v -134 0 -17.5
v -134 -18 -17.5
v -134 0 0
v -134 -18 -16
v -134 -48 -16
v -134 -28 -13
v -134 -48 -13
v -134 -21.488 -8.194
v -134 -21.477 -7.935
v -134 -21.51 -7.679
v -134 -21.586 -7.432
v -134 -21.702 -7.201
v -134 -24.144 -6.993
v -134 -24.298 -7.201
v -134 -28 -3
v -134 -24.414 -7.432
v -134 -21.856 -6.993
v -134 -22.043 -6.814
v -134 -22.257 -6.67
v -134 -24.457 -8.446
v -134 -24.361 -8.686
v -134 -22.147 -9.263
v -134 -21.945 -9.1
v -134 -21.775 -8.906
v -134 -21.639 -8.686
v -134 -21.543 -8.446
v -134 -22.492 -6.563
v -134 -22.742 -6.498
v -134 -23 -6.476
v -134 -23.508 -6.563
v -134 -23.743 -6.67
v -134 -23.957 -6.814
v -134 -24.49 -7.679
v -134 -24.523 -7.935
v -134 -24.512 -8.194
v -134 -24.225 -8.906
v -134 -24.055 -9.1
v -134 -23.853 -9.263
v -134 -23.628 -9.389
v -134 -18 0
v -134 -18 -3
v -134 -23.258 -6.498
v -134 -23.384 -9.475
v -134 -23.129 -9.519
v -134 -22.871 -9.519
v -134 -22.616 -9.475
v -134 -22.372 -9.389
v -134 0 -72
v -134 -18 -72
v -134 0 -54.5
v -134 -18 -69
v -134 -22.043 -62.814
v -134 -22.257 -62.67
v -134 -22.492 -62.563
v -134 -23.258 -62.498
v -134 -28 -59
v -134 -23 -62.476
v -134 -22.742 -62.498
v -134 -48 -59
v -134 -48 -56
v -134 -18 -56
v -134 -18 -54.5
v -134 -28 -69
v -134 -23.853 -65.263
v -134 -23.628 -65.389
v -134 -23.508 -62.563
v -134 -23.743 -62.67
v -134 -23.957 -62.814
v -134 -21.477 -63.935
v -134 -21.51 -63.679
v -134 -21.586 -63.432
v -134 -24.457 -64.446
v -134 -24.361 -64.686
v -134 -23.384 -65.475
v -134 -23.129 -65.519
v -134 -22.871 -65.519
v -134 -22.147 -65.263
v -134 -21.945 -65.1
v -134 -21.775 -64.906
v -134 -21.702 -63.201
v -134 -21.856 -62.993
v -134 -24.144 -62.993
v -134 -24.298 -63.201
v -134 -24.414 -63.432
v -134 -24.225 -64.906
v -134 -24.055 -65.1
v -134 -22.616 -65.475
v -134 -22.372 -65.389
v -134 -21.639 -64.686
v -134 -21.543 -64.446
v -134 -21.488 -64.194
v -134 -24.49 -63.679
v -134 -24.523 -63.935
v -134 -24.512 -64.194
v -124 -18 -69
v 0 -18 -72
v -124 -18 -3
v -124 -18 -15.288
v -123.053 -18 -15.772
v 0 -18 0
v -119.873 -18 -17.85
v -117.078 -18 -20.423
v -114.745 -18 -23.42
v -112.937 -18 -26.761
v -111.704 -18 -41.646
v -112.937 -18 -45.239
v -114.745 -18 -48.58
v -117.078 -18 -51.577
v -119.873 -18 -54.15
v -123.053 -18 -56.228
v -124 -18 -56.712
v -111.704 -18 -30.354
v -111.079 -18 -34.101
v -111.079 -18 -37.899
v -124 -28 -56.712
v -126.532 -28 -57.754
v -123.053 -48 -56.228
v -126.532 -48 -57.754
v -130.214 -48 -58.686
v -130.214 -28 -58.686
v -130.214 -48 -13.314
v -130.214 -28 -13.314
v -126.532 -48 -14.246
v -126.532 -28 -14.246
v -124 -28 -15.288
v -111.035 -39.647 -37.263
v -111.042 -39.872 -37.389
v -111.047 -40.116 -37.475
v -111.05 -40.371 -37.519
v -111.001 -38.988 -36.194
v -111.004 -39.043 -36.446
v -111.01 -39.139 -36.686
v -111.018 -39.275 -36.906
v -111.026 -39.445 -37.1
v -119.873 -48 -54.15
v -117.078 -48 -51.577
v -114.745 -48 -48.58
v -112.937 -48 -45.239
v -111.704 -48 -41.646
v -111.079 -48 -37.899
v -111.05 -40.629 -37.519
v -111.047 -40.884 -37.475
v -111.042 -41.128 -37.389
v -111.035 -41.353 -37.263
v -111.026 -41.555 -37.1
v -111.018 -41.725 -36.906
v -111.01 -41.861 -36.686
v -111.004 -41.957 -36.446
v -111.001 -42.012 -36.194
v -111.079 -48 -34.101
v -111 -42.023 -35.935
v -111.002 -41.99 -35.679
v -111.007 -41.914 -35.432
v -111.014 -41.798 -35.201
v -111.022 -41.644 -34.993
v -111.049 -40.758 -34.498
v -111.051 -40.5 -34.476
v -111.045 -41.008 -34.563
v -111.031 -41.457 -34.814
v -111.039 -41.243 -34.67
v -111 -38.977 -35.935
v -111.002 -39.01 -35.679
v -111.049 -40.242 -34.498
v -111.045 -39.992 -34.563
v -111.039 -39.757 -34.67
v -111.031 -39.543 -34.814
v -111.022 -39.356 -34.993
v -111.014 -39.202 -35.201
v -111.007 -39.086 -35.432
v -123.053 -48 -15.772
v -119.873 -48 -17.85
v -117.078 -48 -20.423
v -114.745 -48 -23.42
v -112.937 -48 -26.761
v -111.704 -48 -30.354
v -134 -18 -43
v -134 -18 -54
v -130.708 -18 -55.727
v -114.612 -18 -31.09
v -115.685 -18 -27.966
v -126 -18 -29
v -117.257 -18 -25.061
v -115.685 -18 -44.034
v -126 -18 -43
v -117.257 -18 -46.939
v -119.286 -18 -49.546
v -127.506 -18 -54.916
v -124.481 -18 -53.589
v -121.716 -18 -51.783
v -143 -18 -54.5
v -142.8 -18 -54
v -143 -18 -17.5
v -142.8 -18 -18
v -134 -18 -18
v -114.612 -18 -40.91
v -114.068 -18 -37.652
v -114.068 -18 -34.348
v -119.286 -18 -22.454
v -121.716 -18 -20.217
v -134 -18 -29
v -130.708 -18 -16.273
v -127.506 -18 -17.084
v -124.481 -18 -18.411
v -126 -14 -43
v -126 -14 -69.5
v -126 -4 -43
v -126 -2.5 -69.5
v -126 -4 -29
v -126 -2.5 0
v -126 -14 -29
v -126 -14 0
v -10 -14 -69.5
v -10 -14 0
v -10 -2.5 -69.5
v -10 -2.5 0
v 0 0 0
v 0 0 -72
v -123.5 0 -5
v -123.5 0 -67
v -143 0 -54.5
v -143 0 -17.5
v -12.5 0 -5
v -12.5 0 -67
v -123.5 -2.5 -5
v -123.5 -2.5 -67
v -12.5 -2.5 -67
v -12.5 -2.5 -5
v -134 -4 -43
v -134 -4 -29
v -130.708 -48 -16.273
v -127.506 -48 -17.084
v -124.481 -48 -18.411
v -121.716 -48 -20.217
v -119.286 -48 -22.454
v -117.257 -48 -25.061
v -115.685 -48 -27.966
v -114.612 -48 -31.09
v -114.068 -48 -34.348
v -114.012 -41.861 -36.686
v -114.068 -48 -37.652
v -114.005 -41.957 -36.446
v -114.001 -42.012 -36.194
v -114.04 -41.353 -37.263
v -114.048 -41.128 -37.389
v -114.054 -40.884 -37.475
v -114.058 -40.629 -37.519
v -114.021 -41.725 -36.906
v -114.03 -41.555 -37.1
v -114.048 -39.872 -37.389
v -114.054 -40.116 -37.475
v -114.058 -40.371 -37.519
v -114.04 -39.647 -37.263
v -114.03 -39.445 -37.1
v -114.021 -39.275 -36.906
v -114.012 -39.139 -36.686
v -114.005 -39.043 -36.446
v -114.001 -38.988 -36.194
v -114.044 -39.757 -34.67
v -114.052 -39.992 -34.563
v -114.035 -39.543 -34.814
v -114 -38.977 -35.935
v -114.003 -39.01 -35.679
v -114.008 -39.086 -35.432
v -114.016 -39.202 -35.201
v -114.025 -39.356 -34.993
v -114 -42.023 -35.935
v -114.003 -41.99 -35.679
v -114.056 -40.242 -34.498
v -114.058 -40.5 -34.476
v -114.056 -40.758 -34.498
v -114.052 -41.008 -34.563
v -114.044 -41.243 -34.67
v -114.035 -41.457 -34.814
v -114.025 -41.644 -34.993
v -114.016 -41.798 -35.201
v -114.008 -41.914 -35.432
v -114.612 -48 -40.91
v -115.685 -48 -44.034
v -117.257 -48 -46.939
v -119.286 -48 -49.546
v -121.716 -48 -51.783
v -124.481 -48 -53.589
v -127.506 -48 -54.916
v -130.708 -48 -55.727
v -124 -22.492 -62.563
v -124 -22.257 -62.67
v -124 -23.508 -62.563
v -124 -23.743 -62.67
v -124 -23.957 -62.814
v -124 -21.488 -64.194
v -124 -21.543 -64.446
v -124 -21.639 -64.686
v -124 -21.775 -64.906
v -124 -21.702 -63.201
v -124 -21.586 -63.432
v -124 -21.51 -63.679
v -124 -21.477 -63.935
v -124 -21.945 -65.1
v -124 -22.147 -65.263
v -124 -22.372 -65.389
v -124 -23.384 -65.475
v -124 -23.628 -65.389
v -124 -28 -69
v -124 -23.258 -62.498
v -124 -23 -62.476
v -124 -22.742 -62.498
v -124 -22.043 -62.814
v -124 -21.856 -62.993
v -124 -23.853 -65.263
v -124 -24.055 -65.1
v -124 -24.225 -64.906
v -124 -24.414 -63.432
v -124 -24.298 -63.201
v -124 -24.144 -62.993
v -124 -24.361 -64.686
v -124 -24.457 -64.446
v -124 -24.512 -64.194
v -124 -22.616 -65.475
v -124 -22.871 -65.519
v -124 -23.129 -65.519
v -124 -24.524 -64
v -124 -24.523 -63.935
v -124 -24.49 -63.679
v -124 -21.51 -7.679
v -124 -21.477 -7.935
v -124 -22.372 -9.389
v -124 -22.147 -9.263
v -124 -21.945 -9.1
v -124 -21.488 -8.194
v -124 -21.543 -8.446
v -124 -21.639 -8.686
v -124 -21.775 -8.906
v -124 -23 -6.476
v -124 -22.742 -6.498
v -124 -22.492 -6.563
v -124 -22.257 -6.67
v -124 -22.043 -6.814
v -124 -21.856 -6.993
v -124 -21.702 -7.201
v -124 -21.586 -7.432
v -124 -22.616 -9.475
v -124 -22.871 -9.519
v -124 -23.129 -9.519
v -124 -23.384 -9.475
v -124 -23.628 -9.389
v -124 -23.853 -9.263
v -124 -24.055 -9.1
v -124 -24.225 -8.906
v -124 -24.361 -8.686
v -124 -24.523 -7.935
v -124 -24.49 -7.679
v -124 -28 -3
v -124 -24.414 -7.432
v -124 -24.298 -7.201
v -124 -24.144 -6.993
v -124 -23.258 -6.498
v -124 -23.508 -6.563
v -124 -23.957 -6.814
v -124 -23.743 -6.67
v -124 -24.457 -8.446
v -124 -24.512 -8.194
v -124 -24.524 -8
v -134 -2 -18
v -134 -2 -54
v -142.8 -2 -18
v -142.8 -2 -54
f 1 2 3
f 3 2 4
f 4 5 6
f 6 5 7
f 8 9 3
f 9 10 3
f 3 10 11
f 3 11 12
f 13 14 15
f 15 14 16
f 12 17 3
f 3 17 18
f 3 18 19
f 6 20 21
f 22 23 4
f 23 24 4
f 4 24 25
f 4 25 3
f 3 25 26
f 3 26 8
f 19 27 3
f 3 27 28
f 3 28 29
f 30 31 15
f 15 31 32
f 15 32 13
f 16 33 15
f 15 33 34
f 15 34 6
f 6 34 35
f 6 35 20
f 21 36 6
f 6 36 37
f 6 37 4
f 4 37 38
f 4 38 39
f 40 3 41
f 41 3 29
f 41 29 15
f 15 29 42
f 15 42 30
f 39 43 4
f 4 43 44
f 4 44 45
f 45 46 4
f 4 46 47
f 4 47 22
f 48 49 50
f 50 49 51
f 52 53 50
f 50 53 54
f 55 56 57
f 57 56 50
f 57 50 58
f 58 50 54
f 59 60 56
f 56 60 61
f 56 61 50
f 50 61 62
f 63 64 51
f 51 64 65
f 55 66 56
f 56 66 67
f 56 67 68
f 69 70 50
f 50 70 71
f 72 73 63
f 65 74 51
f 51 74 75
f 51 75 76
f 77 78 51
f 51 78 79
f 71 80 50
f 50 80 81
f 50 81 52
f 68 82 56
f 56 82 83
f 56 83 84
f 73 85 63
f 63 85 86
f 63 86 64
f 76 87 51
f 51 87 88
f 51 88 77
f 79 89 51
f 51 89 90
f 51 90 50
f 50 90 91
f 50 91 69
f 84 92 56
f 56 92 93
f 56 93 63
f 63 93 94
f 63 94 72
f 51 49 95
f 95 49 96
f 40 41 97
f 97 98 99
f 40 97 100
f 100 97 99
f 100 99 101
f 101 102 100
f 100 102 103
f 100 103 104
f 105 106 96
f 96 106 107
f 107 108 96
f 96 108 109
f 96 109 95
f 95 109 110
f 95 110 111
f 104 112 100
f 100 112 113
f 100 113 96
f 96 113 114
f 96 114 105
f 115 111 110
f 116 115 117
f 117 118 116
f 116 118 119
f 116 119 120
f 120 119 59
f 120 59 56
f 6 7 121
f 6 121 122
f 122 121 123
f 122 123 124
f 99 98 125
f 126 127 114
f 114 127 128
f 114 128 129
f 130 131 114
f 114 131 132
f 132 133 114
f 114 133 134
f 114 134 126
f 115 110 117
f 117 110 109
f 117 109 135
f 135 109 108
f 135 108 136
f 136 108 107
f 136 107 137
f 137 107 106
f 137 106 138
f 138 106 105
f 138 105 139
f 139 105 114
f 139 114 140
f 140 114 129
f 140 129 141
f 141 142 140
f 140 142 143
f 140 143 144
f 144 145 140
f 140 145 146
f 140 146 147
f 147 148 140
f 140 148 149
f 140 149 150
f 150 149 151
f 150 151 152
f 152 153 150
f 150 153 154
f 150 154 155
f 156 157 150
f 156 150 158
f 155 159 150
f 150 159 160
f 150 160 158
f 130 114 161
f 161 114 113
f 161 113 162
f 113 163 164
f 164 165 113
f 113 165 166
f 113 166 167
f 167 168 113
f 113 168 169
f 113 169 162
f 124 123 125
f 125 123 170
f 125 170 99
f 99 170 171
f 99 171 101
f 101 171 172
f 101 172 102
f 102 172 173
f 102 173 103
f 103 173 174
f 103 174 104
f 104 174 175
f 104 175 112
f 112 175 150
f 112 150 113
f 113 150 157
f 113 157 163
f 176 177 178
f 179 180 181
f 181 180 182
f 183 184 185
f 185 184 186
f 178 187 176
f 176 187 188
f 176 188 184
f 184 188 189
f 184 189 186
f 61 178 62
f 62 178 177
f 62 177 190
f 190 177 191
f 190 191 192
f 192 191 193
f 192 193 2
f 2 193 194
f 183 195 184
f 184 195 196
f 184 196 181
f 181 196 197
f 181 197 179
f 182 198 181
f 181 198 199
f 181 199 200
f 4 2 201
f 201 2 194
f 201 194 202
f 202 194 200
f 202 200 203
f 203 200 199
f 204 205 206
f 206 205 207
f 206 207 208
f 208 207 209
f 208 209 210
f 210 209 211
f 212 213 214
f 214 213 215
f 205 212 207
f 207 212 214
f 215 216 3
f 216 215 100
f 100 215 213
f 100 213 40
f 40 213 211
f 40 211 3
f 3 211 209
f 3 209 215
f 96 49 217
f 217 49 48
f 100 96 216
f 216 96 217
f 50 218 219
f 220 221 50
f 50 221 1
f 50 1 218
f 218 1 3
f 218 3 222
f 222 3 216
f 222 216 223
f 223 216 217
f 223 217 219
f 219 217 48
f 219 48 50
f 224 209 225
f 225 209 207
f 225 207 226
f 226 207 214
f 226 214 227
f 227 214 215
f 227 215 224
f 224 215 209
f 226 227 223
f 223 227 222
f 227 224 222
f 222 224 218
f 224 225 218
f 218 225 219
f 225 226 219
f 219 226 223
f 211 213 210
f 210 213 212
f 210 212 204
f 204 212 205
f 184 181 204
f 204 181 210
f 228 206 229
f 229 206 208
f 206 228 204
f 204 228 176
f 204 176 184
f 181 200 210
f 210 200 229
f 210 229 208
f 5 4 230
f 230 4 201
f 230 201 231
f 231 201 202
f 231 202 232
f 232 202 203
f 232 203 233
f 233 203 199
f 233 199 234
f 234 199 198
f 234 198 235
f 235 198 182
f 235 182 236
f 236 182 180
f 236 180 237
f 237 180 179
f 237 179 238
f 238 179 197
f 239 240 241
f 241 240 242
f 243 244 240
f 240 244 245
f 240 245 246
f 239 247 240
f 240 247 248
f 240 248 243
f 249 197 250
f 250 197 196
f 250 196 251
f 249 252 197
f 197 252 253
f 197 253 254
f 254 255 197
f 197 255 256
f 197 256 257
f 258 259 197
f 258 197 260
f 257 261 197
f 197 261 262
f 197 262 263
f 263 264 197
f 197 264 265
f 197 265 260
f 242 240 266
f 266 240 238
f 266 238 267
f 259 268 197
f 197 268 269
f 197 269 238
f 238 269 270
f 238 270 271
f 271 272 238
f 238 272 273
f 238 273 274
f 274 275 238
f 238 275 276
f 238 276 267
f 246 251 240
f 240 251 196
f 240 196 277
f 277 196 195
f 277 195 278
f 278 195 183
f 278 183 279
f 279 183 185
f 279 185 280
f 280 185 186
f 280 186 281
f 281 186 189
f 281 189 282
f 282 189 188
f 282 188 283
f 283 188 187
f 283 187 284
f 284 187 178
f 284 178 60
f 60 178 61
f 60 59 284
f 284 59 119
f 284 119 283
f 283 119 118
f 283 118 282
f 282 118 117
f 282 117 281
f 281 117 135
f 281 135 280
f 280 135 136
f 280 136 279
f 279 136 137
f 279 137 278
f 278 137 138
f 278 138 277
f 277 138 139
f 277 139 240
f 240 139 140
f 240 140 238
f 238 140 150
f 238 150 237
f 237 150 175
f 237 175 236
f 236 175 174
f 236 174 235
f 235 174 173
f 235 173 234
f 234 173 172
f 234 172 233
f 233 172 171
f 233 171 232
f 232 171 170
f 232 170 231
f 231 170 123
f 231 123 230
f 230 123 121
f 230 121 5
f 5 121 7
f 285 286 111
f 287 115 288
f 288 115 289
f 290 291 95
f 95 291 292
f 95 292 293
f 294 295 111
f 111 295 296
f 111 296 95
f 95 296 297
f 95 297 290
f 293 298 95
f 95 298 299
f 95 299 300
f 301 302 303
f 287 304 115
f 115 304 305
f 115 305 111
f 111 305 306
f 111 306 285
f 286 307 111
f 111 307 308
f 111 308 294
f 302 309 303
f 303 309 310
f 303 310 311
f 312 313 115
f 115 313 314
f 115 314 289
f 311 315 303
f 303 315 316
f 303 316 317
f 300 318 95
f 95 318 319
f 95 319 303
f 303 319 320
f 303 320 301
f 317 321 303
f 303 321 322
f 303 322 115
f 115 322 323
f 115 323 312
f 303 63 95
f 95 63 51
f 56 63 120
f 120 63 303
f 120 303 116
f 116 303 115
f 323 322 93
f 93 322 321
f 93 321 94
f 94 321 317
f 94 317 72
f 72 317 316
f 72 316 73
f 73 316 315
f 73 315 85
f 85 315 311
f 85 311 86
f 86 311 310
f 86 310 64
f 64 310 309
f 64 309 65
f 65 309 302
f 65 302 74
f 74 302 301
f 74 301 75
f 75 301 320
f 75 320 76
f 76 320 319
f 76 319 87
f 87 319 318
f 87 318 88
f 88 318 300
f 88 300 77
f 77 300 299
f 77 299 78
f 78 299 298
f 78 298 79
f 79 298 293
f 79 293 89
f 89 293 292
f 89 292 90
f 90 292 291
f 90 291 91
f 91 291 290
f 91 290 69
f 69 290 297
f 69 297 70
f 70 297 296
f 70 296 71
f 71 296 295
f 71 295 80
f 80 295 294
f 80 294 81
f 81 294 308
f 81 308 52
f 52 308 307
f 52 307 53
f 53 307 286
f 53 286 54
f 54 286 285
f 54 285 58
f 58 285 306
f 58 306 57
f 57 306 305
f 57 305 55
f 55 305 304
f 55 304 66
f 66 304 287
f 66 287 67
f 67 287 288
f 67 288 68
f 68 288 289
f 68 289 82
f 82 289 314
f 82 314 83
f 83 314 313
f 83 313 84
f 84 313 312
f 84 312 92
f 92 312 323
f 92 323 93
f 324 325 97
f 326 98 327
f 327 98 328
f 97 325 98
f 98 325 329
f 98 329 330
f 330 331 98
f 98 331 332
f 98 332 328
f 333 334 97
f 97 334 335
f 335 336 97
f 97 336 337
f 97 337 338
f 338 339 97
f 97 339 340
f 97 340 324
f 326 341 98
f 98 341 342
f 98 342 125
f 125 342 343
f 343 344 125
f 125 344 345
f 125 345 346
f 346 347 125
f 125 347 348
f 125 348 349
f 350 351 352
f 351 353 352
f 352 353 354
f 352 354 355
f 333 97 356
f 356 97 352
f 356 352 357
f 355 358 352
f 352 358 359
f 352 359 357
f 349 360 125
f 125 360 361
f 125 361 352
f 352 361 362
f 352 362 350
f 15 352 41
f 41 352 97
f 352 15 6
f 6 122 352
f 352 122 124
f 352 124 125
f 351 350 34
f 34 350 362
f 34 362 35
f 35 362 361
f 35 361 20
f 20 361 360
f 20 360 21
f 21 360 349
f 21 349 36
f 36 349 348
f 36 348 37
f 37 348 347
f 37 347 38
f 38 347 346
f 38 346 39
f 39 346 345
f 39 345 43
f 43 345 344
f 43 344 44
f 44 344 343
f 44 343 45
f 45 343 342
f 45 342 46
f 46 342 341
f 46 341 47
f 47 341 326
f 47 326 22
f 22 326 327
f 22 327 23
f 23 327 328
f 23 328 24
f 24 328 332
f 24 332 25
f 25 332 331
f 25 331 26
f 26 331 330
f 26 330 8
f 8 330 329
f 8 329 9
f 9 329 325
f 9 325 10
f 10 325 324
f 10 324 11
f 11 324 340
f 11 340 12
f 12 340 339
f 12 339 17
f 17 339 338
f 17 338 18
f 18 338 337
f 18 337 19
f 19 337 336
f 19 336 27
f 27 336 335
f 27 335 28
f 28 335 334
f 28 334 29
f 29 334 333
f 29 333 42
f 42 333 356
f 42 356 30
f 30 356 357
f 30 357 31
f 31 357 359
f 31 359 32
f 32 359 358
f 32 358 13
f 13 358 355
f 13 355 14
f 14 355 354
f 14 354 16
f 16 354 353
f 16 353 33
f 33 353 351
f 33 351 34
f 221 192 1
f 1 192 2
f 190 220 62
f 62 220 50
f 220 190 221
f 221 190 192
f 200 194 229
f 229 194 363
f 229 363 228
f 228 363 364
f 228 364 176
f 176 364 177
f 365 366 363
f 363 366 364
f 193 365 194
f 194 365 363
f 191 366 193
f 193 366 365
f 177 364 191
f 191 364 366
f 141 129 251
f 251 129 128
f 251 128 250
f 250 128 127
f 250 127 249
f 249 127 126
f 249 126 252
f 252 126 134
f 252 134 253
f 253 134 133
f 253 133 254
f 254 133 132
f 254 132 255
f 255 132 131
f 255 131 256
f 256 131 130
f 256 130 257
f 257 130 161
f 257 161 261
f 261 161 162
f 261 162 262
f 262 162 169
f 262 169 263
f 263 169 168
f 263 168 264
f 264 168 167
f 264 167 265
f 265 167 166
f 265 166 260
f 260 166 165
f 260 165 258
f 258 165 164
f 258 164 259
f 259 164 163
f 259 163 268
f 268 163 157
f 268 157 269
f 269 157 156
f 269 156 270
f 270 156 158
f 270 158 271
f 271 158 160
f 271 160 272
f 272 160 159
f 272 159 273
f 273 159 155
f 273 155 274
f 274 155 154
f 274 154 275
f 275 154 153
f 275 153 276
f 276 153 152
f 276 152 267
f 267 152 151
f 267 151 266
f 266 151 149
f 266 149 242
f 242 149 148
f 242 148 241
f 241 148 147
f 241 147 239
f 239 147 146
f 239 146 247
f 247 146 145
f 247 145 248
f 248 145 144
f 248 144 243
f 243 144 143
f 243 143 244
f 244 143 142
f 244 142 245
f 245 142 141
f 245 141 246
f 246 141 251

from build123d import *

# Parameters (mm, degrees)
SKETCH5_W                  = 116
SKETCH5_H                  = 67
MAIN_BODY_DEPTH            = 14
SKETCH6_W                  = 116
SKETCH6_H                  = 67
SKETCH6_W_2                = 111
SKETCH6_H_2                = 62
RAIL_DEPTH                 = 2.5
SKETCH8_W                  = 134
SKETCH8_H                  = 4
COVER_DEPTH                = 72
SKETCH9_W                  = 14
SKETCH9_H                  = 14
SIPM_WINDOW_DEPTH          = 8
TUBE_ADAPTER_DEPTH         = 30
RIGHT_SCREW_TERMINAL_DEPTH = 10
RIGHT_SCREW_HOLE_REACH     = 136
SKETCH12_R                 = 1.524
LEFT_SCREW_TERMINAL_DEPTH  = 10
LEFT_SCREW_HOLE_REACH      = 136
SKETCH14_R                 = 1.524
SKETCH15_W                 = 37
SKETCH15_H                 = 18
SIPM_MOUNT_DEPTH           = 9
SKETCH17_W                 = 8.8
SKETCH17_H                 = 36
CUT_EXTRUDE1_DEPTH         = 16
ADAPTER_HOLE_REACH         = 146
SKETCH18_R                 = 1.524
SKETCH19_W                 = 116
SKETCH19_H                 = 11.5
CUT_EXTRUDE2_DEPTH         = 10


with BuildPart() as part:
    # Sketch5 → Main Body (new body)
    with BuildSketch(Plane(origin=(0, 0, 0), x_dir=(1, 0, 0), z_dir=(0, 1, 0))):
        Polygon((-124, 0), (-134, 0), (-134, 72), (0, 72), (0, 0), (-1.95326153, 0), align=None)
        with Locations((-68, 36)):
            Rectangle(SKETCH5_W, SKETCH5_H, mode=Mode.SUBTRACT)
    extrude(amount=-MAIN_BODY_DEPTH)

    # Sketch6 → Rail (add)
    with BuildSketch(Plane(origin=(0, 0, 0), x_dir=(1, 0, 0), z_dir=(0, 1, 0))):
        with Locations((-68, 36)):
            Rectangle(SKETCH6_W, SKETCH6_H)
        with Locations((-68, 36)):
            Rectangle(SKETCH6_W_2, SKETCH6_H_2, mode=Mode.SUBTRACT)
    extrude(amount=-RAIL_DEPTH)

    # Sketch8 → Cover (add)
    with BuildSketch(Plane.XY):
        with Locations((-67, -16)):
            Rectangle(SKETCH8_W, SKETCH8_H)
    extrude(amount=-COVER_DEPTH)

    # Sketch9 → SiPM Window (cut)
    with BuildSketch(Plane.ZY.offset(134)):
        with Locations((-36, -11)):
            Rectangle(SKETCH9_W, SKETCH9_H)
    extrude(amount=-SIPM_WINDOW_DEPTH, mode=Mode.SUBTRACT)

    # Sketch10 → Tube Adapter (add)
    with BuildSketch(Plane.XZ.offset(18)):
        with BuildLine():
            Line((-134, -13), (-134, -16))
            ThreePointArc((-134, -16), (-114, -36), (-134, -56))
            Line((-134, -56), (-134, -59))
            ThreePointArc((-134, -59), (-111, -36), (-134, -13))
        make_face()
    extrude(amount=TUBE_ADAPTER_DEPTH)

    # Sketch11 → Right Screw Terminal (add)
    with BuildSketch(Plane.XZ.offset(18)):
        with BuildLine():
            Line((-134, -59), (-134, -69))
            Line((-134, -69), (-124, -69))
            Line((-124, -69), (-124, -56.712315177))
            ThreePointArc((-124, -56.712315177), (-128.870830919, -58.420785547), (-134, -59))
        make_face()
    extrude(amount=RIGHT_SCREW_TERMINAL_DEPTH)

    # Sketch12 → Right Screw Hole (cut, up to next)
    with BuildSketch(Plane.ZY.offset(134), mode=Mode.PRIVATE) as right_screw_hole_sk1:
        with Locations((-64, -23)):
            Circle(SKETCH12_R)
    right_screw_hole_tool1 = extrude(right_screw_hole_sk1.sketch, amount=-RIGHT_SCREW_HOLE_REACH, mode=Mode.PRIVATE) & part.part
    add(right_screw_hole_tool1.solids().sort_by_distance((-134, -23, -64))[0], mode=Mode.SUBTRACT)

    # Sketch13 → Left Screw Terminal (add)
    with BuildSketch(Plane(origin=(0, -18, 0), x_dir=(-1, 0, 0), z_dir=(0, -1, 0))):
        with BuildLine():
            Line((134, 13), (134, 3))
            Line((134, 3), (124, 3))
            Line((124, 3), (124, 15.287684823))
            ThreePointArc((124, 15.287684823), (128.870830919, 13.579214453), (134, 13))
        make_face()
    extrude(amount=LEFT_SCREW_TERMINAL_DEPTH)

    # Sketch14 → Left Screw Hole (cut, up to next)
    with BuildSketch(Plane.ZY.offset(134), mode=Mode.PRIVATE) as left_screw_hole_sk1:
        with Locations((-8, -23)):
            Circle(SKETCH14_R)
    left_screw_hole_tool1 = extrude(left_screw_hole_sk1.sketch, amount=-LEFT_SCREW_HOLE_REACH, mode=Mode.PRIVATE) & part.part
    add(left_screw_hole_tool1.solids().sort_by_distance((-134, -23, -8))[0], mode=Mode.SUBTRACT)

    # Sketch15 → SiPM Mount (add)
    with BuildSketch(Plane.ZY.offset(134)):
        with Locations((-36, -9)):
            Rectangle(SKETCH15_W, SKETCH15_H)
    extrude(amount=SIPM_MOUNT_DEPTH)

    # Sketch17 → Cut-Extrude1 (cut)
    with BuildSketch(Plane.XZ.offset(18)):
        with Locations((-138.4, -36)):
            Rectangle(SKETCH17_W, SKETCH17_H)
    extrude(amount=-CUT_EXTRUDE1_DEPTH, mode=Mode.SUBTRACT)

    # Sketch18 → Adapter Hole (cut, up to next)
    with BuildSketch(Plane.ZY.offset(144), mode=Mode.PRIVATE) as adapter_hole_sk1:
        with Locations((-36, -40.5)):
            Circle(SKETCH18_R)
    adapter_hole_tool1 = extrude(adapter_hole_sk1.sketch, amount=-ADAPTER_HOLE_REACH, mode=Mode.PRIVATE) & part.part
    add(adapter_hole_tool1.solids().sort_by_distance((-144, -40.5, -36))[0], mode=Mode.SUBTRACT)

    # Sketch19 → Cut-Extrude2 (cut)
    with BuildSketch(Plane(origin=(0, 0, -2.5), x_dir=(-1, 0, 0), z_dir=(0, 0, -1))):
        with Locations((68, -8.25)):
            Rectangle(SKETCH19_W, SKETCH19_H)
    extrude(amount=-CUT_EXTRUDE2_DEPTH, mode=Mode.SUBTRACT)


solid = part.part
